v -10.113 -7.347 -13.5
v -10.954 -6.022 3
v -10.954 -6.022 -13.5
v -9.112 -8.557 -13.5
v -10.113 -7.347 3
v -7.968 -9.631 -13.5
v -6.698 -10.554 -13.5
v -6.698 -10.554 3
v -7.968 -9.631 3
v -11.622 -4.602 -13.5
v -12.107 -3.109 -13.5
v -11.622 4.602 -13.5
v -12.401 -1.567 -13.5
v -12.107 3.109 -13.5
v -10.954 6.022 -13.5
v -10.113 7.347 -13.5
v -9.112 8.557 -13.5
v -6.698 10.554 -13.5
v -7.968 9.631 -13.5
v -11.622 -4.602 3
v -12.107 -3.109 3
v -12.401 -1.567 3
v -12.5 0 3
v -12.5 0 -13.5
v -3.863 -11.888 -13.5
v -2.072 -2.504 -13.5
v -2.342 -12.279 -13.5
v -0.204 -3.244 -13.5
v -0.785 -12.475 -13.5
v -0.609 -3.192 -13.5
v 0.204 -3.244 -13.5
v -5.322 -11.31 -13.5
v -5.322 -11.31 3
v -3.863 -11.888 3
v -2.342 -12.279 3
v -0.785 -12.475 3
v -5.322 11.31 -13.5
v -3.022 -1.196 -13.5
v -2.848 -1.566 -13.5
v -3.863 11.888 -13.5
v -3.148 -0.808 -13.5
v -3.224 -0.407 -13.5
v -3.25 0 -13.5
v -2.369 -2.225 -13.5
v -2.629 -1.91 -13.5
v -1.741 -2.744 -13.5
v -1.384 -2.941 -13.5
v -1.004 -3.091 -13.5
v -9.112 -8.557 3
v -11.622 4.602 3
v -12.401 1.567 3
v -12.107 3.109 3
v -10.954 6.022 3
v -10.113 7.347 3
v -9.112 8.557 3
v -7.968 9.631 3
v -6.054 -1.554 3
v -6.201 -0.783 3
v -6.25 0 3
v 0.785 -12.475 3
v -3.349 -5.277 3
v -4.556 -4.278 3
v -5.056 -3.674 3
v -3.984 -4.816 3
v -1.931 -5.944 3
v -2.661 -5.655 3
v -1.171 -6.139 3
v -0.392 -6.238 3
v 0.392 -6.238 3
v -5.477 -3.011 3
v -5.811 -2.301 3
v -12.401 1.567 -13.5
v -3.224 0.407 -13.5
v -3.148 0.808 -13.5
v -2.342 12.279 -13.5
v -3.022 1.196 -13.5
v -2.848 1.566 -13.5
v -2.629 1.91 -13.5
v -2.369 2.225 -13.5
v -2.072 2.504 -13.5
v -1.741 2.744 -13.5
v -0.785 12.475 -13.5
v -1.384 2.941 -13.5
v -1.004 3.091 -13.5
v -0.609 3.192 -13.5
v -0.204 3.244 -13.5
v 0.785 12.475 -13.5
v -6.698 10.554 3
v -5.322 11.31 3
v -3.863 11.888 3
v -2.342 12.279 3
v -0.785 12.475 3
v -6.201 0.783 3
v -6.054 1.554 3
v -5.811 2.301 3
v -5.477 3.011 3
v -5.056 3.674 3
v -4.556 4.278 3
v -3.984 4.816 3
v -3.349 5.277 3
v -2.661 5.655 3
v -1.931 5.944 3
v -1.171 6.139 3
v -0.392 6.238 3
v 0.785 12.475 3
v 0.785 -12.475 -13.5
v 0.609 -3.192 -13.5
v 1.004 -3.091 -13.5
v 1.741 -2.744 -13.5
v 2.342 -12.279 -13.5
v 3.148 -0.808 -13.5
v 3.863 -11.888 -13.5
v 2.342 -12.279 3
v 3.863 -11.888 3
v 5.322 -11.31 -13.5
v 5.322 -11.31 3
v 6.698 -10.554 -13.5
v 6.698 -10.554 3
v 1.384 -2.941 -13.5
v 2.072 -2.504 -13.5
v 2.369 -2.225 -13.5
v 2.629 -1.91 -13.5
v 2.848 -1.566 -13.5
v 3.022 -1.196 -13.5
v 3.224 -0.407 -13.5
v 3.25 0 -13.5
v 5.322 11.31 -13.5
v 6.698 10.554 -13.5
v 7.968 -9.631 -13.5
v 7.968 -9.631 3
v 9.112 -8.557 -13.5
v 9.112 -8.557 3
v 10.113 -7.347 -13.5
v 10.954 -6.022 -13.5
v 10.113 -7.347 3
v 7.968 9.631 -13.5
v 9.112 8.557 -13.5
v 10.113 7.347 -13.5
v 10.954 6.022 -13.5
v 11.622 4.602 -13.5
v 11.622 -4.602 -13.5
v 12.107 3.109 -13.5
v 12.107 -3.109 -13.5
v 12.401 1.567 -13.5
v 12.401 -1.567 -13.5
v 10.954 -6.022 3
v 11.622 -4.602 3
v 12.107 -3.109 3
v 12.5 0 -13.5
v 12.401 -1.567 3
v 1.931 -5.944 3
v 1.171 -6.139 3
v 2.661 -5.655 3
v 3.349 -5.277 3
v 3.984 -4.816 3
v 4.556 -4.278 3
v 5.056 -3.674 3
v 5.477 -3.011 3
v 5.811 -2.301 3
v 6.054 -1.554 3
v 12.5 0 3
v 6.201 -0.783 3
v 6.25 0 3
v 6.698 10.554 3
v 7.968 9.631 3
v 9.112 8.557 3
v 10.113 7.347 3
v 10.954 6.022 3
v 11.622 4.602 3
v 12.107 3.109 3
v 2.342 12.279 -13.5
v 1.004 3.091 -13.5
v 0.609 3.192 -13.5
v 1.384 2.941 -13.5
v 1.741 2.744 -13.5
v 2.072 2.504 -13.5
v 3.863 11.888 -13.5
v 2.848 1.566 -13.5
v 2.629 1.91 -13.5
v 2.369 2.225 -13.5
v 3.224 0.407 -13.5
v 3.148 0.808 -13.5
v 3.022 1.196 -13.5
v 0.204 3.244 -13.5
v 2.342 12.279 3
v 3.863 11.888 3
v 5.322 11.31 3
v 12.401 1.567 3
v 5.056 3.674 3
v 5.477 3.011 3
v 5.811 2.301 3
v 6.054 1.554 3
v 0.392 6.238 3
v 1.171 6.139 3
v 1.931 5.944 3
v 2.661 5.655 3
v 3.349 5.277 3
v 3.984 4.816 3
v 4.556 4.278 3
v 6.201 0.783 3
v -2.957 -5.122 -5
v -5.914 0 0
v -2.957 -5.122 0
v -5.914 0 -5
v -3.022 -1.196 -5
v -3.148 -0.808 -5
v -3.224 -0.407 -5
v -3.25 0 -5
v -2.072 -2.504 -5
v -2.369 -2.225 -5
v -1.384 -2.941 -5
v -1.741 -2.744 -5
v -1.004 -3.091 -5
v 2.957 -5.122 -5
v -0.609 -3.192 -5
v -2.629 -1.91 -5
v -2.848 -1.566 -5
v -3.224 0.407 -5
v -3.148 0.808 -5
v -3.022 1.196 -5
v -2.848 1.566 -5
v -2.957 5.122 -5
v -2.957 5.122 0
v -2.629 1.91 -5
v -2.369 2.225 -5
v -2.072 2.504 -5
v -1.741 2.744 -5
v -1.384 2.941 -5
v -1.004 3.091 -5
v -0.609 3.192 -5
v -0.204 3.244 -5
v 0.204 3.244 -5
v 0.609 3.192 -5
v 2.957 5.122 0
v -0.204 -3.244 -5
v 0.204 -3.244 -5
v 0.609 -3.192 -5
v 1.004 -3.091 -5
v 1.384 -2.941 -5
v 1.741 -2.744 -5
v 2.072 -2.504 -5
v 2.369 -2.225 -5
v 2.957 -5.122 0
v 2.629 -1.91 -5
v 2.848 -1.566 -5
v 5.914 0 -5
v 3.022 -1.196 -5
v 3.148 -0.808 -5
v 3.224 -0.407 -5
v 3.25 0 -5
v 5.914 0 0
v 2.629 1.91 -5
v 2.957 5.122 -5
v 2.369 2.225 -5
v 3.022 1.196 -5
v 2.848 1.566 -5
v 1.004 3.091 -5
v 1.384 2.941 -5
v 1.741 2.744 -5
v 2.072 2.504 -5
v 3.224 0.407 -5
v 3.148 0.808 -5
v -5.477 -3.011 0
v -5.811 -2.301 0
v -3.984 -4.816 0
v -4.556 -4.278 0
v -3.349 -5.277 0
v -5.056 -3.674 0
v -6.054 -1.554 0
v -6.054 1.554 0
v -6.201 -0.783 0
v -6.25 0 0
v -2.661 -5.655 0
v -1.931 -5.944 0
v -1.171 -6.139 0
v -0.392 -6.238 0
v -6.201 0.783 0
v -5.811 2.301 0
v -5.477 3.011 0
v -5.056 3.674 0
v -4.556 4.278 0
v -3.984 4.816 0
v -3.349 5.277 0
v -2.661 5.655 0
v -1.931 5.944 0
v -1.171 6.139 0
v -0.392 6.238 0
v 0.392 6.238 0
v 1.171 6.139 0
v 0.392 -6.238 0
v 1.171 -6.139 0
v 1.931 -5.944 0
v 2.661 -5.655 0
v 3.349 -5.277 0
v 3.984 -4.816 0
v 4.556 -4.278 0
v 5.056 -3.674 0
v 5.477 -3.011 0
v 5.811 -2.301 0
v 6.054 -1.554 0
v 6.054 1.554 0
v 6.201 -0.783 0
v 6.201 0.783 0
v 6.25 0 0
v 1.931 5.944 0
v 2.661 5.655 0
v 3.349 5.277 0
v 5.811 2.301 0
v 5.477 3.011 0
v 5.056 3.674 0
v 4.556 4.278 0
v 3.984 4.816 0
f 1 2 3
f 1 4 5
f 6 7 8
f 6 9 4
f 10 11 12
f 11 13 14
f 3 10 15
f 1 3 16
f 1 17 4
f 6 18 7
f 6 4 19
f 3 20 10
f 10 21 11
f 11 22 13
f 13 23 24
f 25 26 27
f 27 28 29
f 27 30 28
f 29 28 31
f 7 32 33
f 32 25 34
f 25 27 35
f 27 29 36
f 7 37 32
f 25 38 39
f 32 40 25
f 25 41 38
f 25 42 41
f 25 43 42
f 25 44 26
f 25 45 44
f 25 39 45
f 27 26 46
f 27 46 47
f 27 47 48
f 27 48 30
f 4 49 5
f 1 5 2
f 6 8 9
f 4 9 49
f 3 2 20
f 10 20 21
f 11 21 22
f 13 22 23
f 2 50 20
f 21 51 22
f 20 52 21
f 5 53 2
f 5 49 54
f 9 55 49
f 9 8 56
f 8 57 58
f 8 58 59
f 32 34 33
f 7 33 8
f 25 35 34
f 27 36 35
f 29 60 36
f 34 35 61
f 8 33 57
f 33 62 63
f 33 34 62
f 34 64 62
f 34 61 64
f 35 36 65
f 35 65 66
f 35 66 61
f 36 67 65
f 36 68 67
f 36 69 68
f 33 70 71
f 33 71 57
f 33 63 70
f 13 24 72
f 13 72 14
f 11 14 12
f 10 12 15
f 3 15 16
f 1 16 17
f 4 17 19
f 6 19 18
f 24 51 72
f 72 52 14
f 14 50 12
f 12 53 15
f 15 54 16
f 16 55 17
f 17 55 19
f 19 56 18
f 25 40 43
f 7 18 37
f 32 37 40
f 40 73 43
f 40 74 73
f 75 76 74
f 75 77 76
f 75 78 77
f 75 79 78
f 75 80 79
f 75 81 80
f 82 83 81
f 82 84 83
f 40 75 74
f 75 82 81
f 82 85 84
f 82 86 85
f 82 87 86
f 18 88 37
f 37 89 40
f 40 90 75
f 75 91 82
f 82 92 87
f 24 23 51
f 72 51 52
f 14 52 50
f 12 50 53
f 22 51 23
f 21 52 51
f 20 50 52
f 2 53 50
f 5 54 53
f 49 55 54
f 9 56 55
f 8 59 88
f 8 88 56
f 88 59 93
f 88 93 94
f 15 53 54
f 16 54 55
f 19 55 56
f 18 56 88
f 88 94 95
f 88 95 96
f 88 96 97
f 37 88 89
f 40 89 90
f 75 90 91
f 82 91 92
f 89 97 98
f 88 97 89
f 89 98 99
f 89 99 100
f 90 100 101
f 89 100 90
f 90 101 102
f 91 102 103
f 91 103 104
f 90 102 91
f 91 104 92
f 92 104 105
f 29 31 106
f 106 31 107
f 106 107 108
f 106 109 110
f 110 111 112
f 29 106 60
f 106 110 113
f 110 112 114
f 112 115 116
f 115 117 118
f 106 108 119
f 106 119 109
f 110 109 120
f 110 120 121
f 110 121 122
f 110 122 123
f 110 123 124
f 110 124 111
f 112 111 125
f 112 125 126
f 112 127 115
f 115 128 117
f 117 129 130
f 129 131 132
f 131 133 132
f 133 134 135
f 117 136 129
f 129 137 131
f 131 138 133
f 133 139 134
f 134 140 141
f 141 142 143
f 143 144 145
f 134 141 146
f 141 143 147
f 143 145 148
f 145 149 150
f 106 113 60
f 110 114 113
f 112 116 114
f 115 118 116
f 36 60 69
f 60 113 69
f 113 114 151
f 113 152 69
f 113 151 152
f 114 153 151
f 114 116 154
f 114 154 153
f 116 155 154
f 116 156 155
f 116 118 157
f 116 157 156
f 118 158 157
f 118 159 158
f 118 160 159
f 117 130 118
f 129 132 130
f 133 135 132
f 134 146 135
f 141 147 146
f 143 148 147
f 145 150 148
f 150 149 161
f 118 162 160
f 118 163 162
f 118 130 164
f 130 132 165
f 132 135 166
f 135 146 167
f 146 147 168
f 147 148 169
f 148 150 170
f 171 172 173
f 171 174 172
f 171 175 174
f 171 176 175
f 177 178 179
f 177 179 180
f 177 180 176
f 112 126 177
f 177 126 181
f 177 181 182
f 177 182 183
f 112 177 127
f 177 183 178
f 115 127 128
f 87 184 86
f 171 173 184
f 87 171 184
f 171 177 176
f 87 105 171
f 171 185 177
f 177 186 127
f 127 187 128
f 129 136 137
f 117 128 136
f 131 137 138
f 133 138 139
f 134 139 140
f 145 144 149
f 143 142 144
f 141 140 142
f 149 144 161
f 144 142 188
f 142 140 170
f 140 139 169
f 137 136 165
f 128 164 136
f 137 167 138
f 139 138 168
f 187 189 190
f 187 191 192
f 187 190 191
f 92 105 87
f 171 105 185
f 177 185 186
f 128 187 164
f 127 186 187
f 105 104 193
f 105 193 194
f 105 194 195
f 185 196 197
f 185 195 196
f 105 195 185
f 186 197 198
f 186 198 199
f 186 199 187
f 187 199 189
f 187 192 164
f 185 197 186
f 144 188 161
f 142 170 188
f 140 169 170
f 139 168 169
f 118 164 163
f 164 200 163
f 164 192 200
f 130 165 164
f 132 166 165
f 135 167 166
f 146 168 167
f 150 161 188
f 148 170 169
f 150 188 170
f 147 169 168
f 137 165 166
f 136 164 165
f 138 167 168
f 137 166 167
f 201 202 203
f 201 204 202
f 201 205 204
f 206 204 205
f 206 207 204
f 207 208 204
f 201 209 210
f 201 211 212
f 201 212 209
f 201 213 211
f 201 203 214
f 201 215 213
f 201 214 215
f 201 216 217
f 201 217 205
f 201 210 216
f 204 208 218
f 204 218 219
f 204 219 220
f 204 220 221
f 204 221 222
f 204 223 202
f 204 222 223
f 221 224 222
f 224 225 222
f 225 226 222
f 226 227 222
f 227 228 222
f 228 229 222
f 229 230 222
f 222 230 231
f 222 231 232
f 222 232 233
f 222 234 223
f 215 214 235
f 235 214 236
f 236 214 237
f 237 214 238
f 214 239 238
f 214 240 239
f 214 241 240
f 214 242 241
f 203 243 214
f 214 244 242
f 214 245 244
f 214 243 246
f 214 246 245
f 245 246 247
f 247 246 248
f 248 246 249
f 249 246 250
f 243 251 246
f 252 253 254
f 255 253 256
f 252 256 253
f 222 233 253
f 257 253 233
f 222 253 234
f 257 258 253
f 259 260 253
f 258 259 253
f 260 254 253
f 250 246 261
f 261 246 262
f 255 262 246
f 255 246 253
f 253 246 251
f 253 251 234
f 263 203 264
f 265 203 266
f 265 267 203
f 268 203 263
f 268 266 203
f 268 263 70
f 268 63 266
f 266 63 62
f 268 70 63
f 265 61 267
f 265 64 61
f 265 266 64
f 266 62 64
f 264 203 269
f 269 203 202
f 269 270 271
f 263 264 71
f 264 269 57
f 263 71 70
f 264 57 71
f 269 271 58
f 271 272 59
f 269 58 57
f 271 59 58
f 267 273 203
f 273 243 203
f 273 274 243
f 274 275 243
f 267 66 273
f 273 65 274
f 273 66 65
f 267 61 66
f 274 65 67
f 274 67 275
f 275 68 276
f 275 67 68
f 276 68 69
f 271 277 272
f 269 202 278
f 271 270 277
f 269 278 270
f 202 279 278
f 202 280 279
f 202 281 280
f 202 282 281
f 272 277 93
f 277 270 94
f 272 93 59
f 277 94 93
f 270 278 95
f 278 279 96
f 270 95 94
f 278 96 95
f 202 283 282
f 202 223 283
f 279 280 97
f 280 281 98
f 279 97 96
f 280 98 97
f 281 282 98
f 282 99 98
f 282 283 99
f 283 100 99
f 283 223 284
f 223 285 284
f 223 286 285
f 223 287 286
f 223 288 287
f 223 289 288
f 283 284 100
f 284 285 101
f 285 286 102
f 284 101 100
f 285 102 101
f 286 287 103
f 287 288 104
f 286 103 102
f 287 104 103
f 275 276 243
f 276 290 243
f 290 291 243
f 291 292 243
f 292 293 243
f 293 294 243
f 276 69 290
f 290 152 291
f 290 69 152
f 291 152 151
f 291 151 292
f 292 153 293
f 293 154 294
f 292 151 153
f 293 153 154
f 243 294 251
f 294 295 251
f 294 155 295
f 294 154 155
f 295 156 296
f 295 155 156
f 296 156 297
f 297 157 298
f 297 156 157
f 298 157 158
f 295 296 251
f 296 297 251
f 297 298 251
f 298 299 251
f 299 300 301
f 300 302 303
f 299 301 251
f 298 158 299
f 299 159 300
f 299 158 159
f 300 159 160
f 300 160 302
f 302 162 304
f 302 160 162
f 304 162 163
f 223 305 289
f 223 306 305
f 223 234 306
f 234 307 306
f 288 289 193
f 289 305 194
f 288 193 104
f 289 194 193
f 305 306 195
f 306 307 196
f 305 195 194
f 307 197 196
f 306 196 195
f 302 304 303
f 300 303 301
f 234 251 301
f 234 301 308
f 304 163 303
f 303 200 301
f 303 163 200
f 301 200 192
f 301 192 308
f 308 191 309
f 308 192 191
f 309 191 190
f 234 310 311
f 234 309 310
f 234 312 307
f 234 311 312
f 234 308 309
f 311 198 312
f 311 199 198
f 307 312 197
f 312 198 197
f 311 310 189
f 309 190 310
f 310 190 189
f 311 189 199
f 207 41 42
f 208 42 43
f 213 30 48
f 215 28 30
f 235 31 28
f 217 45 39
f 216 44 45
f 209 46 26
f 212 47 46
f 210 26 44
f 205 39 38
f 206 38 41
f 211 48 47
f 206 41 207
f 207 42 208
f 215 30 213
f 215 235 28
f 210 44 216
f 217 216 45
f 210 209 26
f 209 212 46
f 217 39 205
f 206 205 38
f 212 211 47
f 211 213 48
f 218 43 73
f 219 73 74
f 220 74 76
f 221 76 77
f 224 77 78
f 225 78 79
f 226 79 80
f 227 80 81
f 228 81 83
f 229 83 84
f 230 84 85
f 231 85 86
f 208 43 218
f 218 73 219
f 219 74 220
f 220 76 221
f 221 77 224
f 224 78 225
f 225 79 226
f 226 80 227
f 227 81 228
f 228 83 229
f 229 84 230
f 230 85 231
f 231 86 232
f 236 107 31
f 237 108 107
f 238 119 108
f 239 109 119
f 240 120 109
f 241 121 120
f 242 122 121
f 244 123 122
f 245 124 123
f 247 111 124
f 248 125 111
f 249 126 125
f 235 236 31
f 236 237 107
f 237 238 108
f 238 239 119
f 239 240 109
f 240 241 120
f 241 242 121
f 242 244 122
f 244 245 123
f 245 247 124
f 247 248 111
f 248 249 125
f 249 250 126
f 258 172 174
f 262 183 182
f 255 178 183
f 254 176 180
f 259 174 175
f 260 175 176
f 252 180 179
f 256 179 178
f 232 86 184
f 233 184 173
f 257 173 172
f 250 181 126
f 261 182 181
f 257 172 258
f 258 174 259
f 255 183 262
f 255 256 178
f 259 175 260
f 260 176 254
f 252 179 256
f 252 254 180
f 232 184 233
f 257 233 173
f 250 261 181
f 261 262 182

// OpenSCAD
$fn = 50;


difference() {
	union() {
		translate(v = [0, 0, -13.5000000000]) {
			cylinder(h = 16.5000000000, r = 12.5000000000);
		}
		#translate(v = [0, 0, -15.0000000000]) {
			cylinder(h = 15, r = 2.8750000000);
		}
	}
	union() {
		translate(v = [0, 0, 0]) {
			rotate(a = [0, 0, 0]) {
				difference() {
					union() {
						translate(v = [0, 0, -5]) {
							linear_extrude(height = 5) {
								polygon(points = [[5.9142500000, 0.0000000000], [2.9571250000, 5.1218907443], [-2.9571250000, 5.1218907443], [-5.9142500000, 0.0000000000], [-2.9571250000, -5.1218907443], [2.9571250000, -5.1218907443]]);
							}
						}
					}
					union();
				}
			}
		}
		#cylinder(h = 3, r = 6.2500000000);
		#translate(v = [0, 0, -100.0000000000]) {
			cylinder(h = 200, r = 3.2500000000);
		}
	}
}
